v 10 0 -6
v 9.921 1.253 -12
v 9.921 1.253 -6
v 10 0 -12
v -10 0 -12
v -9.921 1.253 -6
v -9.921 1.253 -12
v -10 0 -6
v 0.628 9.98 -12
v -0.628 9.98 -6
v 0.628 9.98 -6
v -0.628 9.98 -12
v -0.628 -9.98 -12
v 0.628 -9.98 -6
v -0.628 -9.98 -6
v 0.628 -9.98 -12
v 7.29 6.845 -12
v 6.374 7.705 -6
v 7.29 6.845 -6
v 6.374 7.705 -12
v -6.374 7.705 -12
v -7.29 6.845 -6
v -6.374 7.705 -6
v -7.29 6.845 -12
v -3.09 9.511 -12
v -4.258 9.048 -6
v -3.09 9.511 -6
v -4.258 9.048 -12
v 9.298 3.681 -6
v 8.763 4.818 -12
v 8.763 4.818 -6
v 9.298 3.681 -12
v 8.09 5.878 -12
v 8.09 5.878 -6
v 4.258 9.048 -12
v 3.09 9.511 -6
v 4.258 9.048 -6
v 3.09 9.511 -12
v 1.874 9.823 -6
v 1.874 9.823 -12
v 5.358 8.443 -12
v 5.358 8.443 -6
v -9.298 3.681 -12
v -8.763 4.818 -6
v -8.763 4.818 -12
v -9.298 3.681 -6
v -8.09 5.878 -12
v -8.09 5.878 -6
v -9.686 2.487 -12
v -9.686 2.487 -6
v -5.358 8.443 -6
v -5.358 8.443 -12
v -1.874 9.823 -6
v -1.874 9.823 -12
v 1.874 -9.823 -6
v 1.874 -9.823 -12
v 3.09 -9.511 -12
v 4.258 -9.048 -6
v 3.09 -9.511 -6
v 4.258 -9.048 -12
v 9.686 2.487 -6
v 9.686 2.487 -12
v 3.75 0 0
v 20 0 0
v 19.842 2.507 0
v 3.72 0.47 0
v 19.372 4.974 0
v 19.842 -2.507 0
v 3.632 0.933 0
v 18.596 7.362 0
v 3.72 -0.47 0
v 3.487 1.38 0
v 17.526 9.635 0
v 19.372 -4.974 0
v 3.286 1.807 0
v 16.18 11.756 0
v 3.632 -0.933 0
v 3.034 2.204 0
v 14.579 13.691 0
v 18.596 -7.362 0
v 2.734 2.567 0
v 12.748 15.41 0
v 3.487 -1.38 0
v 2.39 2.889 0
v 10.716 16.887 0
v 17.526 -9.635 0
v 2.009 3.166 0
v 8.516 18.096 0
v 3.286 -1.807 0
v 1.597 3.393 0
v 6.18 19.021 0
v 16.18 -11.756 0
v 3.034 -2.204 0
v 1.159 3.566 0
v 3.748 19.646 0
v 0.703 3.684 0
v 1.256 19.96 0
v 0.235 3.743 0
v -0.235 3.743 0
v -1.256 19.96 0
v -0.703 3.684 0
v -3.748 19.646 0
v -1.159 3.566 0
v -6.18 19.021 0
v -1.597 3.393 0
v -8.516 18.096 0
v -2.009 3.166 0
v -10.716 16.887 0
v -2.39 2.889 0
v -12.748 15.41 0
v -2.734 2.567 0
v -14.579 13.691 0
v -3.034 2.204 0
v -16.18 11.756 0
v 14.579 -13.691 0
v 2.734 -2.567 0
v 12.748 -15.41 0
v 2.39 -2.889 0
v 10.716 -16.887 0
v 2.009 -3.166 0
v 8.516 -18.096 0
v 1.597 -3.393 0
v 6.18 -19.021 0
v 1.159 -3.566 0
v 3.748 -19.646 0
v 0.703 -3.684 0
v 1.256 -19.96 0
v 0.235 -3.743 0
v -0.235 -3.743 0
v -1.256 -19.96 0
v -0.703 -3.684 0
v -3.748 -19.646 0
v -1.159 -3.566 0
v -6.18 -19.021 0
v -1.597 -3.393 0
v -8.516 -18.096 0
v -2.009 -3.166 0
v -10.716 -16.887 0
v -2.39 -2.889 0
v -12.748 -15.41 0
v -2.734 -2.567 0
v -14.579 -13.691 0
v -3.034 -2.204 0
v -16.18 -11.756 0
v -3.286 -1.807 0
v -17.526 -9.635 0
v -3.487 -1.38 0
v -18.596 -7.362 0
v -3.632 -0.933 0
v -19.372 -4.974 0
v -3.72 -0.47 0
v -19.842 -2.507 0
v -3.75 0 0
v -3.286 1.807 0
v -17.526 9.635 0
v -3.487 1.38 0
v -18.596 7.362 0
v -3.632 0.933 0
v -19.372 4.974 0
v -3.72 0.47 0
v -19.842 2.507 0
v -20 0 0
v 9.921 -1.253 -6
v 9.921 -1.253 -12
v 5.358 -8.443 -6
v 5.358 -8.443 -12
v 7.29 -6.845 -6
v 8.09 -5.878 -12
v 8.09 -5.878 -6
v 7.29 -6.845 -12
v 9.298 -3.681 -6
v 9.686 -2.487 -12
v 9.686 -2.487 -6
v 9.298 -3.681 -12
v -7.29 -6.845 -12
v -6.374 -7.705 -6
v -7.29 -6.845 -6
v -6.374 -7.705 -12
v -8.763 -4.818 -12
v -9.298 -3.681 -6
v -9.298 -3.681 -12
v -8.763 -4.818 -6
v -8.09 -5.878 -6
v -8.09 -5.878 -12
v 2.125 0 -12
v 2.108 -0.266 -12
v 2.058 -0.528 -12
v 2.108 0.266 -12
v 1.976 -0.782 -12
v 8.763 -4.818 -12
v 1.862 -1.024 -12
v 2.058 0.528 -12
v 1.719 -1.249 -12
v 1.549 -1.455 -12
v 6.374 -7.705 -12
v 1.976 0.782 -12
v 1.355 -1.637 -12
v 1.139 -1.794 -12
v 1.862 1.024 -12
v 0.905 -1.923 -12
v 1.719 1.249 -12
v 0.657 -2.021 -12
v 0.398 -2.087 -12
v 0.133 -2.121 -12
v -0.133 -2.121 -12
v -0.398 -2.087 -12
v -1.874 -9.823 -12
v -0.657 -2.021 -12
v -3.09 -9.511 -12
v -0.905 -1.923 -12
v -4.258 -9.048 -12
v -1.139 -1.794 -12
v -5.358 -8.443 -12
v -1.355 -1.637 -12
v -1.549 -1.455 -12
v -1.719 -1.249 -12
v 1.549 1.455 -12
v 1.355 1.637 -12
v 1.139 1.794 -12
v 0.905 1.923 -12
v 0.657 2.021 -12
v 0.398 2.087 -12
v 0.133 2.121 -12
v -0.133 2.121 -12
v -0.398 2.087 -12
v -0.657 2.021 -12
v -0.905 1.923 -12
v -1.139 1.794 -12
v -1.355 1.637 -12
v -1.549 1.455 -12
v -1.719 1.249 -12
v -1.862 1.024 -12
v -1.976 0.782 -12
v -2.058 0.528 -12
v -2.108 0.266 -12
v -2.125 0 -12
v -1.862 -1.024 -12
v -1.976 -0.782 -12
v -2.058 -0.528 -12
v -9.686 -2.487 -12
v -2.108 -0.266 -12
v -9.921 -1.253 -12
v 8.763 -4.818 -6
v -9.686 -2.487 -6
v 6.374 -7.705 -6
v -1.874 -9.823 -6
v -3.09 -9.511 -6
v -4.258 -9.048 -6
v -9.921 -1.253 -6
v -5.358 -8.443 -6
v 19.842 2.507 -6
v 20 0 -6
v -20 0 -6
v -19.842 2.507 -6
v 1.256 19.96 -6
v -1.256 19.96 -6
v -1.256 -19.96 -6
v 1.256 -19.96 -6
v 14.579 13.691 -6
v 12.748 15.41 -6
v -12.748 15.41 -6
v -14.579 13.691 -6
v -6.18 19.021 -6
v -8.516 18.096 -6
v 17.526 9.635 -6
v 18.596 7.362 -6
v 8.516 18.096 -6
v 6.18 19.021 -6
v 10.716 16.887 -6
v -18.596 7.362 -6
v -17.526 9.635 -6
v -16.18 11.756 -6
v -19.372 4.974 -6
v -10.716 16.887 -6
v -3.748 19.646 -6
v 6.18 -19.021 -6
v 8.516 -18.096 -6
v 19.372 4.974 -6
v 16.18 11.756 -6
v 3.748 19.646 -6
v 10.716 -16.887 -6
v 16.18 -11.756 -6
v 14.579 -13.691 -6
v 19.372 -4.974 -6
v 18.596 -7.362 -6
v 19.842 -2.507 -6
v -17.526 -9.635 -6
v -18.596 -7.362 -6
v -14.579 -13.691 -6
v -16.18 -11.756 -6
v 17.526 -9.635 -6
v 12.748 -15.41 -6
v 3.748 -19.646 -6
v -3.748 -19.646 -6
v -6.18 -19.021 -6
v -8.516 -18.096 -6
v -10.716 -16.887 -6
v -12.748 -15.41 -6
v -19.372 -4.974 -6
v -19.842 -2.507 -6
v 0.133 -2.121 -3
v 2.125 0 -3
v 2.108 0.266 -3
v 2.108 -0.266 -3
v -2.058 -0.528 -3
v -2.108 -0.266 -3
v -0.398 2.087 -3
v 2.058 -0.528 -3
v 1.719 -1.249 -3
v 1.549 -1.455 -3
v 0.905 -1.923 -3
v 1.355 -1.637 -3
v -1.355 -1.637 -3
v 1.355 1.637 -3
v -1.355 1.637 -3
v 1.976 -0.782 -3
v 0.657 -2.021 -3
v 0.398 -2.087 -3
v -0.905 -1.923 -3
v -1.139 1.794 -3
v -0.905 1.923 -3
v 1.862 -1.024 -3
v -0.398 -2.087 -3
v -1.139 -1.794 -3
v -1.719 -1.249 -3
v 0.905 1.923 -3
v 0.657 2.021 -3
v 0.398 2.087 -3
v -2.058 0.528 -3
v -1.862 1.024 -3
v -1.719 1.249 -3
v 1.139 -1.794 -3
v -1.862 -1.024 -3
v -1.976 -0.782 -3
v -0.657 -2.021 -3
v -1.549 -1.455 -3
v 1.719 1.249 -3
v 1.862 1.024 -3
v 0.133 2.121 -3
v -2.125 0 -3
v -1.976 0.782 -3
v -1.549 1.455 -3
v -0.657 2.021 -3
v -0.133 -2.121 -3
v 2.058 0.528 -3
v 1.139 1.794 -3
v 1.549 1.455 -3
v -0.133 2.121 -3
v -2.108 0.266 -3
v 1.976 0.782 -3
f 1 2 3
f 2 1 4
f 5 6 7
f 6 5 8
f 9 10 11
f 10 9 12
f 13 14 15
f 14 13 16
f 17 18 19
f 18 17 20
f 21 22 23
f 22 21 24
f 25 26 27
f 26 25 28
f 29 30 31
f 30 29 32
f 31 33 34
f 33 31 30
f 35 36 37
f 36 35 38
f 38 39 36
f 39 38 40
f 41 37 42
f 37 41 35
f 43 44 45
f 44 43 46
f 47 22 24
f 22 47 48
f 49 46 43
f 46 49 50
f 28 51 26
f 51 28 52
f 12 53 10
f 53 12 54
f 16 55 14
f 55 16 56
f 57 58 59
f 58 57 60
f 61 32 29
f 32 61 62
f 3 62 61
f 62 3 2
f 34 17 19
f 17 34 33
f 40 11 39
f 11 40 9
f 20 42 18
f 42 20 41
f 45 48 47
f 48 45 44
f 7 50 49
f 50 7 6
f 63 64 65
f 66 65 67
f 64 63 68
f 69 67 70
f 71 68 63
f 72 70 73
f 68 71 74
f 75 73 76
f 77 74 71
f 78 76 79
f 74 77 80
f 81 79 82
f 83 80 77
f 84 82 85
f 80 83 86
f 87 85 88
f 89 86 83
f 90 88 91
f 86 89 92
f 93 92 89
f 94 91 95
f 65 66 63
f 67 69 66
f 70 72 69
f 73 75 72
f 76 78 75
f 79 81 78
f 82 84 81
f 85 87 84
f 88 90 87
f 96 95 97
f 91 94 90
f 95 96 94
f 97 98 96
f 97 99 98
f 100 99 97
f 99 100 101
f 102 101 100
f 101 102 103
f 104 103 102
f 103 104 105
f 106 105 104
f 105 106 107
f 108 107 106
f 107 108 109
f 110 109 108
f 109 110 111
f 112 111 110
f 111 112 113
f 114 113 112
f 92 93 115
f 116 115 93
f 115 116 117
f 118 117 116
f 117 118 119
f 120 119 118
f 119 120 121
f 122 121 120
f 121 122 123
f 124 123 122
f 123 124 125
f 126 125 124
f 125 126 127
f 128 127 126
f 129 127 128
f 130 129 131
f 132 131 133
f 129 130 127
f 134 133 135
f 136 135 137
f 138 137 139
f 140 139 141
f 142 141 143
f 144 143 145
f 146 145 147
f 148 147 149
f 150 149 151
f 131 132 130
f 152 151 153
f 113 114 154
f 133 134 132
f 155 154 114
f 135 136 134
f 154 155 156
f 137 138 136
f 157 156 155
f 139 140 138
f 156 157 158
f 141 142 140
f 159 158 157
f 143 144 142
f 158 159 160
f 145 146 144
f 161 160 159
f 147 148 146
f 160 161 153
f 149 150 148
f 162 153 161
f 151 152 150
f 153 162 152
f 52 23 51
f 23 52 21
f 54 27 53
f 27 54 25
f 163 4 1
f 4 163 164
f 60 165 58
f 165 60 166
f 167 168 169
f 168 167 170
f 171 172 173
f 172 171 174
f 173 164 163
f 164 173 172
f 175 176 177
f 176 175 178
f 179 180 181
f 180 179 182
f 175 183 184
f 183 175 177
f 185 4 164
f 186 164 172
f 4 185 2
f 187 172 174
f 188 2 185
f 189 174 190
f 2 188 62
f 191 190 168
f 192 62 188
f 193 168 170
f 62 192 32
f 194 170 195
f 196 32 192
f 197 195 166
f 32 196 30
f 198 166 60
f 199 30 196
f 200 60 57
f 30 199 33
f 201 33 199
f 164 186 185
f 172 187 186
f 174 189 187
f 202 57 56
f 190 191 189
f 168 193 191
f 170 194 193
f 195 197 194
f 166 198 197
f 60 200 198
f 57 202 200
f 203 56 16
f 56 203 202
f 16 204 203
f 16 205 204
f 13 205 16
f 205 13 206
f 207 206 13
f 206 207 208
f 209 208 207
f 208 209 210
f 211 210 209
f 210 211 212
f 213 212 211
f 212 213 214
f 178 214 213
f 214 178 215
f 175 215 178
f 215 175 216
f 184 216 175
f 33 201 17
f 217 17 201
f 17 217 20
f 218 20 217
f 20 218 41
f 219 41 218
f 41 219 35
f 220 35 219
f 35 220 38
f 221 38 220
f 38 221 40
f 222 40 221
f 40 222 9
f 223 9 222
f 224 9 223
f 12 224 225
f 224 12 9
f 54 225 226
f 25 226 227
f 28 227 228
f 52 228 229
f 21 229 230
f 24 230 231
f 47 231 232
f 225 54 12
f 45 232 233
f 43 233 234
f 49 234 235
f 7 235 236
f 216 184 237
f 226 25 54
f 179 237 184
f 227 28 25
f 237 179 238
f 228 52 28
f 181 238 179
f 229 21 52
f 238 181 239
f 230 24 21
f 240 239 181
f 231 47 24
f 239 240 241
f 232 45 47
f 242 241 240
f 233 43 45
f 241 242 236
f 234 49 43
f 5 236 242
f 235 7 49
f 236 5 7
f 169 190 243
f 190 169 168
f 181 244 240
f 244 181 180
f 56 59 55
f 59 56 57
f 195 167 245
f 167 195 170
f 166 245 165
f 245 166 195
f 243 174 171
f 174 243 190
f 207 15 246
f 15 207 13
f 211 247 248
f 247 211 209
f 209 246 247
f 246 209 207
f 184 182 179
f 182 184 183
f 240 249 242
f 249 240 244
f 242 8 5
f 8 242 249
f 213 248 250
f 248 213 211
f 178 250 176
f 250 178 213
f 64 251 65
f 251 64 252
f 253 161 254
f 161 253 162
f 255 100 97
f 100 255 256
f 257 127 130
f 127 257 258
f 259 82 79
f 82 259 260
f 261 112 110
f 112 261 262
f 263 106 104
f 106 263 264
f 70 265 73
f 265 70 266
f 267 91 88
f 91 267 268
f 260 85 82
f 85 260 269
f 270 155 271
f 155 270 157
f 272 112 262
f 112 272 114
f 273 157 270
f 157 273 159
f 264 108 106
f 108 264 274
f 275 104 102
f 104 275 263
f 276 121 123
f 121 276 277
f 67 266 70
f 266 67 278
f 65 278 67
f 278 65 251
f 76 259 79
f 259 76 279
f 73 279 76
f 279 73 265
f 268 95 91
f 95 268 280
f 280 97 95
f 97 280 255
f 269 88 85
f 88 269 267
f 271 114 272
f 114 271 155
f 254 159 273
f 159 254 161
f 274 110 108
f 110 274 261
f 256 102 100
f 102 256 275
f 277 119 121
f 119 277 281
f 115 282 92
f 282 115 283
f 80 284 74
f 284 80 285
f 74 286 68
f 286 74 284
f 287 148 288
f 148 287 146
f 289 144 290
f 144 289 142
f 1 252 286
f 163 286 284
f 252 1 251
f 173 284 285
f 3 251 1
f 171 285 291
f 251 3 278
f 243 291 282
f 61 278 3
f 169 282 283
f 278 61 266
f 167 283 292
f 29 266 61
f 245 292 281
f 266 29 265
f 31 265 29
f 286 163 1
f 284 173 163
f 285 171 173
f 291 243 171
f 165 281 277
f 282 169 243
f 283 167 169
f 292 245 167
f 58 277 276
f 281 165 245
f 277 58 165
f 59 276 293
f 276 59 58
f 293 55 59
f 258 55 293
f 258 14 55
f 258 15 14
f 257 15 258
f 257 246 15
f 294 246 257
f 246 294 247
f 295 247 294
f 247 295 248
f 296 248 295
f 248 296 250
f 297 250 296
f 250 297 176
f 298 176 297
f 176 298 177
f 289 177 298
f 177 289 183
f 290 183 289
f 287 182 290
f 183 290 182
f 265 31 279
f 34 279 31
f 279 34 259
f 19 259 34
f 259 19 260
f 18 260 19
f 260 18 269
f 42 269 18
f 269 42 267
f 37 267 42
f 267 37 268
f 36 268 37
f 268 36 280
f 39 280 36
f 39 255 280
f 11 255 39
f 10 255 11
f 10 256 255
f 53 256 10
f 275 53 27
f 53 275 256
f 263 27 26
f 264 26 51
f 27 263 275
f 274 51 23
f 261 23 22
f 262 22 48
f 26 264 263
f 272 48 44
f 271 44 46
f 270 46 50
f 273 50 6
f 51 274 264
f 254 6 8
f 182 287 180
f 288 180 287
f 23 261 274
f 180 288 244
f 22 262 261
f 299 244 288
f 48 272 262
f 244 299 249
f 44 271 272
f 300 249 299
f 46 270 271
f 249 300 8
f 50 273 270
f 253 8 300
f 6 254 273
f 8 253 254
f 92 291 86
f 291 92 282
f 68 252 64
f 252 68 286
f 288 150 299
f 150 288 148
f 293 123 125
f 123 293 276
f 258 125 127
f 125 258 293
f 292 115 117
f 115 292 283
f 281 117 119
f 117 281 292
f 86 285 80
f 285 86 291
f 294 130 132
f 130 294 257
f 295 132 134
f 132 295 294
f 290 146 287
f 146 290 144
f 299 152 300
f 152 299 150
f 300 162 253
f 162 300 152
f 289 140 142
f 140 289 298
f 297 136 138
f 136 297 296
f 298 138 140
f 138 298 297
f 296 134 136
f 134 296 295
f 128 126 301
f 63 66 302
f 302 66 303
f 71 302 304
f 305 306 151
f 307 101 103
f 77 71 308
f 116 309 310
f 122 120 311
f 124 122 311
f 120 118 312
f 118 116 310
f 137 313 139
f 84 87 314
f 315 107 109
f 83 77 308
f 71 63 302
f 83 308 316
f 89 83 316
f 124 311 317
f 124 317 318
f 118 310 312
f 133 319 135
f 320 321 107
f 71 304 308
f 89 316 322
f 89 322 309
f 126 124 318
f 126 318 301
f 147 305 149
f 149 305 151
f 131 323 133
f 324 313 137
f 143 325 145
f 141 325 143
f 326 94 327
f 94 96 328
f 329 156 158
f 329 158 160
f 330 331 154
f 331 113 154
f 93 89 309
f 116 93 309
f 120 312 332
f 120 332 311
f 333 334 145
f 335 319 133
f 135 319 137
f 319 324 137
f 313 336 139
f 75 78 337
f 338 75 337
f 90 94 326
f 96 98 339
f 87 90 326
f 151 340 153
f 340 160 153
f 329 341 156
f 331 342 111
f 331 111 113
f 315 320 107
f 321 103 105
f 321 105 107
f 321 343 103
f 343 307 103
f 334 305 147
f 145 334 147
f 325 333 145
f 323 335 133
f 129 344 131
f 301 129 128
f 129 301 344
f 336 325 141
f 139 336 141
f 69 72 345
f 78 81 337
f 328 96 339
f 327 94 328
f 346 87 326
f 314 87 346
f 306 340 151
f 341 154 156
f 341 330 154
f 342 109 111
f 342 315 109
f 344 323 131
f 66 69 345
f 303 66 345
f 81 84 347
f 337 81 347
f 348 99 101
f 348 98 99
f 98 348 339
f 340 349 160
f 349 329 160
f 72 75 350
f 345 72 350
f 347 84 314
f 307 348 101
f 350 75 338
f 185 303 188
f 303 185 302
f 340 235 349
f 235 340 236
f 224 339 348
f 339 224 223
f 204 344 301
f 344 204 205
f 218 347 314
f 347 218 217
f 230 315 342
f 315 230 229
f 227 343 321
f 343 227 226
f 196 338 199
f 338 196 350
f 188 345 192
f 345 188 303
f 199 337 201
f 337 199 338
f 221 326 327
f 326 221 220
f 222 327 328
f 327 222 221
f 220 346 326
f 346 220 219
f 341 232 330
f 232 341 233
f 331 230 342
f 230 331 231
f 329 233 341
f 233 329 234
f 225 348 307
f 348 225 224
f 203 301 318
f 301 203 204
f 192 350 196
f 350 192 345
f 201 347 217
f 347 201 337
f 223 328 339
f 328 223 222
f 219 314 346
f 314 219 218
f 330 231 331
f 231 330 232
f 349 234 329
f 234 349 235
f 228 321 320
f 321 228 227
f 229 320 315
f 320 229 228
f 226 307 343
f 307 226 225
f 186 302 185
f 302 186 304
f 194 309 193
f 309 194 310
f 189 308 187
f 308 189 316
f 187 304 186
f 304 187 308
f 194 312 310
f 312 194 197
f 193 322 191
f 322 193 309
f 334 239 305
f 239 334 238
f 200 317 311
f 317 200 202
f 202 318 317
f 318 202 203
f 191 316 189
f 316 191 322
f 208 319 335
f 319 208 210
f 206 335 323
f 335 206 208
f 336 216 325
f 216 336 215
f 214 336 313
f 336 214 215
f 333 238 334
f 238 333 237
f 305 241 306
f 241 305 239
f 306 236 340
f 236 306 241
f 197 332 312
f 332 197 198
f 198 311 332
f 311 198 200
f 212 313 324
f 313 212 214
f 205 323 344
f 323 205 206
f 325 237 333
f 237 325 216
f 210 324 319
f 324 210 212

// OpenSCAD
$fn = 50;


difference() {
	union() {
		translate(v = [0, 0, -12.0000000000]) {
			cylinder(h = 12, r = 10.0000000000);
		}
		translate(v = [0, 0, -6.0000000000]) {
			cylinder(h = 6, r = 20.0000000000);
		}
	}
	union() {
		translate(v = [0, 0, 0]) {
			rotate(a = [0, 0, 0]) {
				difference() {
					union() {
						#translate(v = [0, 0, -12.0000000000]) {
							cylinder(h = 12, r = 2.0000000000);
						}
						#translate(v = [0, 0, -3]) {
							cylinder(h = 3, r1 = 2.1250000000, r2 = 3.7500000000);
						}
						#translate(v = [0, 0, -12.0000000000]) {
							cylinder(h = 12, r = 2.1250000000);
						}
						#translate(v = [0, 0, -12.0000000000]) {
							cylinder(h = 12, r = 2.0000000000);
						}
					}
					union();
				}
			}
		}
	}
}
